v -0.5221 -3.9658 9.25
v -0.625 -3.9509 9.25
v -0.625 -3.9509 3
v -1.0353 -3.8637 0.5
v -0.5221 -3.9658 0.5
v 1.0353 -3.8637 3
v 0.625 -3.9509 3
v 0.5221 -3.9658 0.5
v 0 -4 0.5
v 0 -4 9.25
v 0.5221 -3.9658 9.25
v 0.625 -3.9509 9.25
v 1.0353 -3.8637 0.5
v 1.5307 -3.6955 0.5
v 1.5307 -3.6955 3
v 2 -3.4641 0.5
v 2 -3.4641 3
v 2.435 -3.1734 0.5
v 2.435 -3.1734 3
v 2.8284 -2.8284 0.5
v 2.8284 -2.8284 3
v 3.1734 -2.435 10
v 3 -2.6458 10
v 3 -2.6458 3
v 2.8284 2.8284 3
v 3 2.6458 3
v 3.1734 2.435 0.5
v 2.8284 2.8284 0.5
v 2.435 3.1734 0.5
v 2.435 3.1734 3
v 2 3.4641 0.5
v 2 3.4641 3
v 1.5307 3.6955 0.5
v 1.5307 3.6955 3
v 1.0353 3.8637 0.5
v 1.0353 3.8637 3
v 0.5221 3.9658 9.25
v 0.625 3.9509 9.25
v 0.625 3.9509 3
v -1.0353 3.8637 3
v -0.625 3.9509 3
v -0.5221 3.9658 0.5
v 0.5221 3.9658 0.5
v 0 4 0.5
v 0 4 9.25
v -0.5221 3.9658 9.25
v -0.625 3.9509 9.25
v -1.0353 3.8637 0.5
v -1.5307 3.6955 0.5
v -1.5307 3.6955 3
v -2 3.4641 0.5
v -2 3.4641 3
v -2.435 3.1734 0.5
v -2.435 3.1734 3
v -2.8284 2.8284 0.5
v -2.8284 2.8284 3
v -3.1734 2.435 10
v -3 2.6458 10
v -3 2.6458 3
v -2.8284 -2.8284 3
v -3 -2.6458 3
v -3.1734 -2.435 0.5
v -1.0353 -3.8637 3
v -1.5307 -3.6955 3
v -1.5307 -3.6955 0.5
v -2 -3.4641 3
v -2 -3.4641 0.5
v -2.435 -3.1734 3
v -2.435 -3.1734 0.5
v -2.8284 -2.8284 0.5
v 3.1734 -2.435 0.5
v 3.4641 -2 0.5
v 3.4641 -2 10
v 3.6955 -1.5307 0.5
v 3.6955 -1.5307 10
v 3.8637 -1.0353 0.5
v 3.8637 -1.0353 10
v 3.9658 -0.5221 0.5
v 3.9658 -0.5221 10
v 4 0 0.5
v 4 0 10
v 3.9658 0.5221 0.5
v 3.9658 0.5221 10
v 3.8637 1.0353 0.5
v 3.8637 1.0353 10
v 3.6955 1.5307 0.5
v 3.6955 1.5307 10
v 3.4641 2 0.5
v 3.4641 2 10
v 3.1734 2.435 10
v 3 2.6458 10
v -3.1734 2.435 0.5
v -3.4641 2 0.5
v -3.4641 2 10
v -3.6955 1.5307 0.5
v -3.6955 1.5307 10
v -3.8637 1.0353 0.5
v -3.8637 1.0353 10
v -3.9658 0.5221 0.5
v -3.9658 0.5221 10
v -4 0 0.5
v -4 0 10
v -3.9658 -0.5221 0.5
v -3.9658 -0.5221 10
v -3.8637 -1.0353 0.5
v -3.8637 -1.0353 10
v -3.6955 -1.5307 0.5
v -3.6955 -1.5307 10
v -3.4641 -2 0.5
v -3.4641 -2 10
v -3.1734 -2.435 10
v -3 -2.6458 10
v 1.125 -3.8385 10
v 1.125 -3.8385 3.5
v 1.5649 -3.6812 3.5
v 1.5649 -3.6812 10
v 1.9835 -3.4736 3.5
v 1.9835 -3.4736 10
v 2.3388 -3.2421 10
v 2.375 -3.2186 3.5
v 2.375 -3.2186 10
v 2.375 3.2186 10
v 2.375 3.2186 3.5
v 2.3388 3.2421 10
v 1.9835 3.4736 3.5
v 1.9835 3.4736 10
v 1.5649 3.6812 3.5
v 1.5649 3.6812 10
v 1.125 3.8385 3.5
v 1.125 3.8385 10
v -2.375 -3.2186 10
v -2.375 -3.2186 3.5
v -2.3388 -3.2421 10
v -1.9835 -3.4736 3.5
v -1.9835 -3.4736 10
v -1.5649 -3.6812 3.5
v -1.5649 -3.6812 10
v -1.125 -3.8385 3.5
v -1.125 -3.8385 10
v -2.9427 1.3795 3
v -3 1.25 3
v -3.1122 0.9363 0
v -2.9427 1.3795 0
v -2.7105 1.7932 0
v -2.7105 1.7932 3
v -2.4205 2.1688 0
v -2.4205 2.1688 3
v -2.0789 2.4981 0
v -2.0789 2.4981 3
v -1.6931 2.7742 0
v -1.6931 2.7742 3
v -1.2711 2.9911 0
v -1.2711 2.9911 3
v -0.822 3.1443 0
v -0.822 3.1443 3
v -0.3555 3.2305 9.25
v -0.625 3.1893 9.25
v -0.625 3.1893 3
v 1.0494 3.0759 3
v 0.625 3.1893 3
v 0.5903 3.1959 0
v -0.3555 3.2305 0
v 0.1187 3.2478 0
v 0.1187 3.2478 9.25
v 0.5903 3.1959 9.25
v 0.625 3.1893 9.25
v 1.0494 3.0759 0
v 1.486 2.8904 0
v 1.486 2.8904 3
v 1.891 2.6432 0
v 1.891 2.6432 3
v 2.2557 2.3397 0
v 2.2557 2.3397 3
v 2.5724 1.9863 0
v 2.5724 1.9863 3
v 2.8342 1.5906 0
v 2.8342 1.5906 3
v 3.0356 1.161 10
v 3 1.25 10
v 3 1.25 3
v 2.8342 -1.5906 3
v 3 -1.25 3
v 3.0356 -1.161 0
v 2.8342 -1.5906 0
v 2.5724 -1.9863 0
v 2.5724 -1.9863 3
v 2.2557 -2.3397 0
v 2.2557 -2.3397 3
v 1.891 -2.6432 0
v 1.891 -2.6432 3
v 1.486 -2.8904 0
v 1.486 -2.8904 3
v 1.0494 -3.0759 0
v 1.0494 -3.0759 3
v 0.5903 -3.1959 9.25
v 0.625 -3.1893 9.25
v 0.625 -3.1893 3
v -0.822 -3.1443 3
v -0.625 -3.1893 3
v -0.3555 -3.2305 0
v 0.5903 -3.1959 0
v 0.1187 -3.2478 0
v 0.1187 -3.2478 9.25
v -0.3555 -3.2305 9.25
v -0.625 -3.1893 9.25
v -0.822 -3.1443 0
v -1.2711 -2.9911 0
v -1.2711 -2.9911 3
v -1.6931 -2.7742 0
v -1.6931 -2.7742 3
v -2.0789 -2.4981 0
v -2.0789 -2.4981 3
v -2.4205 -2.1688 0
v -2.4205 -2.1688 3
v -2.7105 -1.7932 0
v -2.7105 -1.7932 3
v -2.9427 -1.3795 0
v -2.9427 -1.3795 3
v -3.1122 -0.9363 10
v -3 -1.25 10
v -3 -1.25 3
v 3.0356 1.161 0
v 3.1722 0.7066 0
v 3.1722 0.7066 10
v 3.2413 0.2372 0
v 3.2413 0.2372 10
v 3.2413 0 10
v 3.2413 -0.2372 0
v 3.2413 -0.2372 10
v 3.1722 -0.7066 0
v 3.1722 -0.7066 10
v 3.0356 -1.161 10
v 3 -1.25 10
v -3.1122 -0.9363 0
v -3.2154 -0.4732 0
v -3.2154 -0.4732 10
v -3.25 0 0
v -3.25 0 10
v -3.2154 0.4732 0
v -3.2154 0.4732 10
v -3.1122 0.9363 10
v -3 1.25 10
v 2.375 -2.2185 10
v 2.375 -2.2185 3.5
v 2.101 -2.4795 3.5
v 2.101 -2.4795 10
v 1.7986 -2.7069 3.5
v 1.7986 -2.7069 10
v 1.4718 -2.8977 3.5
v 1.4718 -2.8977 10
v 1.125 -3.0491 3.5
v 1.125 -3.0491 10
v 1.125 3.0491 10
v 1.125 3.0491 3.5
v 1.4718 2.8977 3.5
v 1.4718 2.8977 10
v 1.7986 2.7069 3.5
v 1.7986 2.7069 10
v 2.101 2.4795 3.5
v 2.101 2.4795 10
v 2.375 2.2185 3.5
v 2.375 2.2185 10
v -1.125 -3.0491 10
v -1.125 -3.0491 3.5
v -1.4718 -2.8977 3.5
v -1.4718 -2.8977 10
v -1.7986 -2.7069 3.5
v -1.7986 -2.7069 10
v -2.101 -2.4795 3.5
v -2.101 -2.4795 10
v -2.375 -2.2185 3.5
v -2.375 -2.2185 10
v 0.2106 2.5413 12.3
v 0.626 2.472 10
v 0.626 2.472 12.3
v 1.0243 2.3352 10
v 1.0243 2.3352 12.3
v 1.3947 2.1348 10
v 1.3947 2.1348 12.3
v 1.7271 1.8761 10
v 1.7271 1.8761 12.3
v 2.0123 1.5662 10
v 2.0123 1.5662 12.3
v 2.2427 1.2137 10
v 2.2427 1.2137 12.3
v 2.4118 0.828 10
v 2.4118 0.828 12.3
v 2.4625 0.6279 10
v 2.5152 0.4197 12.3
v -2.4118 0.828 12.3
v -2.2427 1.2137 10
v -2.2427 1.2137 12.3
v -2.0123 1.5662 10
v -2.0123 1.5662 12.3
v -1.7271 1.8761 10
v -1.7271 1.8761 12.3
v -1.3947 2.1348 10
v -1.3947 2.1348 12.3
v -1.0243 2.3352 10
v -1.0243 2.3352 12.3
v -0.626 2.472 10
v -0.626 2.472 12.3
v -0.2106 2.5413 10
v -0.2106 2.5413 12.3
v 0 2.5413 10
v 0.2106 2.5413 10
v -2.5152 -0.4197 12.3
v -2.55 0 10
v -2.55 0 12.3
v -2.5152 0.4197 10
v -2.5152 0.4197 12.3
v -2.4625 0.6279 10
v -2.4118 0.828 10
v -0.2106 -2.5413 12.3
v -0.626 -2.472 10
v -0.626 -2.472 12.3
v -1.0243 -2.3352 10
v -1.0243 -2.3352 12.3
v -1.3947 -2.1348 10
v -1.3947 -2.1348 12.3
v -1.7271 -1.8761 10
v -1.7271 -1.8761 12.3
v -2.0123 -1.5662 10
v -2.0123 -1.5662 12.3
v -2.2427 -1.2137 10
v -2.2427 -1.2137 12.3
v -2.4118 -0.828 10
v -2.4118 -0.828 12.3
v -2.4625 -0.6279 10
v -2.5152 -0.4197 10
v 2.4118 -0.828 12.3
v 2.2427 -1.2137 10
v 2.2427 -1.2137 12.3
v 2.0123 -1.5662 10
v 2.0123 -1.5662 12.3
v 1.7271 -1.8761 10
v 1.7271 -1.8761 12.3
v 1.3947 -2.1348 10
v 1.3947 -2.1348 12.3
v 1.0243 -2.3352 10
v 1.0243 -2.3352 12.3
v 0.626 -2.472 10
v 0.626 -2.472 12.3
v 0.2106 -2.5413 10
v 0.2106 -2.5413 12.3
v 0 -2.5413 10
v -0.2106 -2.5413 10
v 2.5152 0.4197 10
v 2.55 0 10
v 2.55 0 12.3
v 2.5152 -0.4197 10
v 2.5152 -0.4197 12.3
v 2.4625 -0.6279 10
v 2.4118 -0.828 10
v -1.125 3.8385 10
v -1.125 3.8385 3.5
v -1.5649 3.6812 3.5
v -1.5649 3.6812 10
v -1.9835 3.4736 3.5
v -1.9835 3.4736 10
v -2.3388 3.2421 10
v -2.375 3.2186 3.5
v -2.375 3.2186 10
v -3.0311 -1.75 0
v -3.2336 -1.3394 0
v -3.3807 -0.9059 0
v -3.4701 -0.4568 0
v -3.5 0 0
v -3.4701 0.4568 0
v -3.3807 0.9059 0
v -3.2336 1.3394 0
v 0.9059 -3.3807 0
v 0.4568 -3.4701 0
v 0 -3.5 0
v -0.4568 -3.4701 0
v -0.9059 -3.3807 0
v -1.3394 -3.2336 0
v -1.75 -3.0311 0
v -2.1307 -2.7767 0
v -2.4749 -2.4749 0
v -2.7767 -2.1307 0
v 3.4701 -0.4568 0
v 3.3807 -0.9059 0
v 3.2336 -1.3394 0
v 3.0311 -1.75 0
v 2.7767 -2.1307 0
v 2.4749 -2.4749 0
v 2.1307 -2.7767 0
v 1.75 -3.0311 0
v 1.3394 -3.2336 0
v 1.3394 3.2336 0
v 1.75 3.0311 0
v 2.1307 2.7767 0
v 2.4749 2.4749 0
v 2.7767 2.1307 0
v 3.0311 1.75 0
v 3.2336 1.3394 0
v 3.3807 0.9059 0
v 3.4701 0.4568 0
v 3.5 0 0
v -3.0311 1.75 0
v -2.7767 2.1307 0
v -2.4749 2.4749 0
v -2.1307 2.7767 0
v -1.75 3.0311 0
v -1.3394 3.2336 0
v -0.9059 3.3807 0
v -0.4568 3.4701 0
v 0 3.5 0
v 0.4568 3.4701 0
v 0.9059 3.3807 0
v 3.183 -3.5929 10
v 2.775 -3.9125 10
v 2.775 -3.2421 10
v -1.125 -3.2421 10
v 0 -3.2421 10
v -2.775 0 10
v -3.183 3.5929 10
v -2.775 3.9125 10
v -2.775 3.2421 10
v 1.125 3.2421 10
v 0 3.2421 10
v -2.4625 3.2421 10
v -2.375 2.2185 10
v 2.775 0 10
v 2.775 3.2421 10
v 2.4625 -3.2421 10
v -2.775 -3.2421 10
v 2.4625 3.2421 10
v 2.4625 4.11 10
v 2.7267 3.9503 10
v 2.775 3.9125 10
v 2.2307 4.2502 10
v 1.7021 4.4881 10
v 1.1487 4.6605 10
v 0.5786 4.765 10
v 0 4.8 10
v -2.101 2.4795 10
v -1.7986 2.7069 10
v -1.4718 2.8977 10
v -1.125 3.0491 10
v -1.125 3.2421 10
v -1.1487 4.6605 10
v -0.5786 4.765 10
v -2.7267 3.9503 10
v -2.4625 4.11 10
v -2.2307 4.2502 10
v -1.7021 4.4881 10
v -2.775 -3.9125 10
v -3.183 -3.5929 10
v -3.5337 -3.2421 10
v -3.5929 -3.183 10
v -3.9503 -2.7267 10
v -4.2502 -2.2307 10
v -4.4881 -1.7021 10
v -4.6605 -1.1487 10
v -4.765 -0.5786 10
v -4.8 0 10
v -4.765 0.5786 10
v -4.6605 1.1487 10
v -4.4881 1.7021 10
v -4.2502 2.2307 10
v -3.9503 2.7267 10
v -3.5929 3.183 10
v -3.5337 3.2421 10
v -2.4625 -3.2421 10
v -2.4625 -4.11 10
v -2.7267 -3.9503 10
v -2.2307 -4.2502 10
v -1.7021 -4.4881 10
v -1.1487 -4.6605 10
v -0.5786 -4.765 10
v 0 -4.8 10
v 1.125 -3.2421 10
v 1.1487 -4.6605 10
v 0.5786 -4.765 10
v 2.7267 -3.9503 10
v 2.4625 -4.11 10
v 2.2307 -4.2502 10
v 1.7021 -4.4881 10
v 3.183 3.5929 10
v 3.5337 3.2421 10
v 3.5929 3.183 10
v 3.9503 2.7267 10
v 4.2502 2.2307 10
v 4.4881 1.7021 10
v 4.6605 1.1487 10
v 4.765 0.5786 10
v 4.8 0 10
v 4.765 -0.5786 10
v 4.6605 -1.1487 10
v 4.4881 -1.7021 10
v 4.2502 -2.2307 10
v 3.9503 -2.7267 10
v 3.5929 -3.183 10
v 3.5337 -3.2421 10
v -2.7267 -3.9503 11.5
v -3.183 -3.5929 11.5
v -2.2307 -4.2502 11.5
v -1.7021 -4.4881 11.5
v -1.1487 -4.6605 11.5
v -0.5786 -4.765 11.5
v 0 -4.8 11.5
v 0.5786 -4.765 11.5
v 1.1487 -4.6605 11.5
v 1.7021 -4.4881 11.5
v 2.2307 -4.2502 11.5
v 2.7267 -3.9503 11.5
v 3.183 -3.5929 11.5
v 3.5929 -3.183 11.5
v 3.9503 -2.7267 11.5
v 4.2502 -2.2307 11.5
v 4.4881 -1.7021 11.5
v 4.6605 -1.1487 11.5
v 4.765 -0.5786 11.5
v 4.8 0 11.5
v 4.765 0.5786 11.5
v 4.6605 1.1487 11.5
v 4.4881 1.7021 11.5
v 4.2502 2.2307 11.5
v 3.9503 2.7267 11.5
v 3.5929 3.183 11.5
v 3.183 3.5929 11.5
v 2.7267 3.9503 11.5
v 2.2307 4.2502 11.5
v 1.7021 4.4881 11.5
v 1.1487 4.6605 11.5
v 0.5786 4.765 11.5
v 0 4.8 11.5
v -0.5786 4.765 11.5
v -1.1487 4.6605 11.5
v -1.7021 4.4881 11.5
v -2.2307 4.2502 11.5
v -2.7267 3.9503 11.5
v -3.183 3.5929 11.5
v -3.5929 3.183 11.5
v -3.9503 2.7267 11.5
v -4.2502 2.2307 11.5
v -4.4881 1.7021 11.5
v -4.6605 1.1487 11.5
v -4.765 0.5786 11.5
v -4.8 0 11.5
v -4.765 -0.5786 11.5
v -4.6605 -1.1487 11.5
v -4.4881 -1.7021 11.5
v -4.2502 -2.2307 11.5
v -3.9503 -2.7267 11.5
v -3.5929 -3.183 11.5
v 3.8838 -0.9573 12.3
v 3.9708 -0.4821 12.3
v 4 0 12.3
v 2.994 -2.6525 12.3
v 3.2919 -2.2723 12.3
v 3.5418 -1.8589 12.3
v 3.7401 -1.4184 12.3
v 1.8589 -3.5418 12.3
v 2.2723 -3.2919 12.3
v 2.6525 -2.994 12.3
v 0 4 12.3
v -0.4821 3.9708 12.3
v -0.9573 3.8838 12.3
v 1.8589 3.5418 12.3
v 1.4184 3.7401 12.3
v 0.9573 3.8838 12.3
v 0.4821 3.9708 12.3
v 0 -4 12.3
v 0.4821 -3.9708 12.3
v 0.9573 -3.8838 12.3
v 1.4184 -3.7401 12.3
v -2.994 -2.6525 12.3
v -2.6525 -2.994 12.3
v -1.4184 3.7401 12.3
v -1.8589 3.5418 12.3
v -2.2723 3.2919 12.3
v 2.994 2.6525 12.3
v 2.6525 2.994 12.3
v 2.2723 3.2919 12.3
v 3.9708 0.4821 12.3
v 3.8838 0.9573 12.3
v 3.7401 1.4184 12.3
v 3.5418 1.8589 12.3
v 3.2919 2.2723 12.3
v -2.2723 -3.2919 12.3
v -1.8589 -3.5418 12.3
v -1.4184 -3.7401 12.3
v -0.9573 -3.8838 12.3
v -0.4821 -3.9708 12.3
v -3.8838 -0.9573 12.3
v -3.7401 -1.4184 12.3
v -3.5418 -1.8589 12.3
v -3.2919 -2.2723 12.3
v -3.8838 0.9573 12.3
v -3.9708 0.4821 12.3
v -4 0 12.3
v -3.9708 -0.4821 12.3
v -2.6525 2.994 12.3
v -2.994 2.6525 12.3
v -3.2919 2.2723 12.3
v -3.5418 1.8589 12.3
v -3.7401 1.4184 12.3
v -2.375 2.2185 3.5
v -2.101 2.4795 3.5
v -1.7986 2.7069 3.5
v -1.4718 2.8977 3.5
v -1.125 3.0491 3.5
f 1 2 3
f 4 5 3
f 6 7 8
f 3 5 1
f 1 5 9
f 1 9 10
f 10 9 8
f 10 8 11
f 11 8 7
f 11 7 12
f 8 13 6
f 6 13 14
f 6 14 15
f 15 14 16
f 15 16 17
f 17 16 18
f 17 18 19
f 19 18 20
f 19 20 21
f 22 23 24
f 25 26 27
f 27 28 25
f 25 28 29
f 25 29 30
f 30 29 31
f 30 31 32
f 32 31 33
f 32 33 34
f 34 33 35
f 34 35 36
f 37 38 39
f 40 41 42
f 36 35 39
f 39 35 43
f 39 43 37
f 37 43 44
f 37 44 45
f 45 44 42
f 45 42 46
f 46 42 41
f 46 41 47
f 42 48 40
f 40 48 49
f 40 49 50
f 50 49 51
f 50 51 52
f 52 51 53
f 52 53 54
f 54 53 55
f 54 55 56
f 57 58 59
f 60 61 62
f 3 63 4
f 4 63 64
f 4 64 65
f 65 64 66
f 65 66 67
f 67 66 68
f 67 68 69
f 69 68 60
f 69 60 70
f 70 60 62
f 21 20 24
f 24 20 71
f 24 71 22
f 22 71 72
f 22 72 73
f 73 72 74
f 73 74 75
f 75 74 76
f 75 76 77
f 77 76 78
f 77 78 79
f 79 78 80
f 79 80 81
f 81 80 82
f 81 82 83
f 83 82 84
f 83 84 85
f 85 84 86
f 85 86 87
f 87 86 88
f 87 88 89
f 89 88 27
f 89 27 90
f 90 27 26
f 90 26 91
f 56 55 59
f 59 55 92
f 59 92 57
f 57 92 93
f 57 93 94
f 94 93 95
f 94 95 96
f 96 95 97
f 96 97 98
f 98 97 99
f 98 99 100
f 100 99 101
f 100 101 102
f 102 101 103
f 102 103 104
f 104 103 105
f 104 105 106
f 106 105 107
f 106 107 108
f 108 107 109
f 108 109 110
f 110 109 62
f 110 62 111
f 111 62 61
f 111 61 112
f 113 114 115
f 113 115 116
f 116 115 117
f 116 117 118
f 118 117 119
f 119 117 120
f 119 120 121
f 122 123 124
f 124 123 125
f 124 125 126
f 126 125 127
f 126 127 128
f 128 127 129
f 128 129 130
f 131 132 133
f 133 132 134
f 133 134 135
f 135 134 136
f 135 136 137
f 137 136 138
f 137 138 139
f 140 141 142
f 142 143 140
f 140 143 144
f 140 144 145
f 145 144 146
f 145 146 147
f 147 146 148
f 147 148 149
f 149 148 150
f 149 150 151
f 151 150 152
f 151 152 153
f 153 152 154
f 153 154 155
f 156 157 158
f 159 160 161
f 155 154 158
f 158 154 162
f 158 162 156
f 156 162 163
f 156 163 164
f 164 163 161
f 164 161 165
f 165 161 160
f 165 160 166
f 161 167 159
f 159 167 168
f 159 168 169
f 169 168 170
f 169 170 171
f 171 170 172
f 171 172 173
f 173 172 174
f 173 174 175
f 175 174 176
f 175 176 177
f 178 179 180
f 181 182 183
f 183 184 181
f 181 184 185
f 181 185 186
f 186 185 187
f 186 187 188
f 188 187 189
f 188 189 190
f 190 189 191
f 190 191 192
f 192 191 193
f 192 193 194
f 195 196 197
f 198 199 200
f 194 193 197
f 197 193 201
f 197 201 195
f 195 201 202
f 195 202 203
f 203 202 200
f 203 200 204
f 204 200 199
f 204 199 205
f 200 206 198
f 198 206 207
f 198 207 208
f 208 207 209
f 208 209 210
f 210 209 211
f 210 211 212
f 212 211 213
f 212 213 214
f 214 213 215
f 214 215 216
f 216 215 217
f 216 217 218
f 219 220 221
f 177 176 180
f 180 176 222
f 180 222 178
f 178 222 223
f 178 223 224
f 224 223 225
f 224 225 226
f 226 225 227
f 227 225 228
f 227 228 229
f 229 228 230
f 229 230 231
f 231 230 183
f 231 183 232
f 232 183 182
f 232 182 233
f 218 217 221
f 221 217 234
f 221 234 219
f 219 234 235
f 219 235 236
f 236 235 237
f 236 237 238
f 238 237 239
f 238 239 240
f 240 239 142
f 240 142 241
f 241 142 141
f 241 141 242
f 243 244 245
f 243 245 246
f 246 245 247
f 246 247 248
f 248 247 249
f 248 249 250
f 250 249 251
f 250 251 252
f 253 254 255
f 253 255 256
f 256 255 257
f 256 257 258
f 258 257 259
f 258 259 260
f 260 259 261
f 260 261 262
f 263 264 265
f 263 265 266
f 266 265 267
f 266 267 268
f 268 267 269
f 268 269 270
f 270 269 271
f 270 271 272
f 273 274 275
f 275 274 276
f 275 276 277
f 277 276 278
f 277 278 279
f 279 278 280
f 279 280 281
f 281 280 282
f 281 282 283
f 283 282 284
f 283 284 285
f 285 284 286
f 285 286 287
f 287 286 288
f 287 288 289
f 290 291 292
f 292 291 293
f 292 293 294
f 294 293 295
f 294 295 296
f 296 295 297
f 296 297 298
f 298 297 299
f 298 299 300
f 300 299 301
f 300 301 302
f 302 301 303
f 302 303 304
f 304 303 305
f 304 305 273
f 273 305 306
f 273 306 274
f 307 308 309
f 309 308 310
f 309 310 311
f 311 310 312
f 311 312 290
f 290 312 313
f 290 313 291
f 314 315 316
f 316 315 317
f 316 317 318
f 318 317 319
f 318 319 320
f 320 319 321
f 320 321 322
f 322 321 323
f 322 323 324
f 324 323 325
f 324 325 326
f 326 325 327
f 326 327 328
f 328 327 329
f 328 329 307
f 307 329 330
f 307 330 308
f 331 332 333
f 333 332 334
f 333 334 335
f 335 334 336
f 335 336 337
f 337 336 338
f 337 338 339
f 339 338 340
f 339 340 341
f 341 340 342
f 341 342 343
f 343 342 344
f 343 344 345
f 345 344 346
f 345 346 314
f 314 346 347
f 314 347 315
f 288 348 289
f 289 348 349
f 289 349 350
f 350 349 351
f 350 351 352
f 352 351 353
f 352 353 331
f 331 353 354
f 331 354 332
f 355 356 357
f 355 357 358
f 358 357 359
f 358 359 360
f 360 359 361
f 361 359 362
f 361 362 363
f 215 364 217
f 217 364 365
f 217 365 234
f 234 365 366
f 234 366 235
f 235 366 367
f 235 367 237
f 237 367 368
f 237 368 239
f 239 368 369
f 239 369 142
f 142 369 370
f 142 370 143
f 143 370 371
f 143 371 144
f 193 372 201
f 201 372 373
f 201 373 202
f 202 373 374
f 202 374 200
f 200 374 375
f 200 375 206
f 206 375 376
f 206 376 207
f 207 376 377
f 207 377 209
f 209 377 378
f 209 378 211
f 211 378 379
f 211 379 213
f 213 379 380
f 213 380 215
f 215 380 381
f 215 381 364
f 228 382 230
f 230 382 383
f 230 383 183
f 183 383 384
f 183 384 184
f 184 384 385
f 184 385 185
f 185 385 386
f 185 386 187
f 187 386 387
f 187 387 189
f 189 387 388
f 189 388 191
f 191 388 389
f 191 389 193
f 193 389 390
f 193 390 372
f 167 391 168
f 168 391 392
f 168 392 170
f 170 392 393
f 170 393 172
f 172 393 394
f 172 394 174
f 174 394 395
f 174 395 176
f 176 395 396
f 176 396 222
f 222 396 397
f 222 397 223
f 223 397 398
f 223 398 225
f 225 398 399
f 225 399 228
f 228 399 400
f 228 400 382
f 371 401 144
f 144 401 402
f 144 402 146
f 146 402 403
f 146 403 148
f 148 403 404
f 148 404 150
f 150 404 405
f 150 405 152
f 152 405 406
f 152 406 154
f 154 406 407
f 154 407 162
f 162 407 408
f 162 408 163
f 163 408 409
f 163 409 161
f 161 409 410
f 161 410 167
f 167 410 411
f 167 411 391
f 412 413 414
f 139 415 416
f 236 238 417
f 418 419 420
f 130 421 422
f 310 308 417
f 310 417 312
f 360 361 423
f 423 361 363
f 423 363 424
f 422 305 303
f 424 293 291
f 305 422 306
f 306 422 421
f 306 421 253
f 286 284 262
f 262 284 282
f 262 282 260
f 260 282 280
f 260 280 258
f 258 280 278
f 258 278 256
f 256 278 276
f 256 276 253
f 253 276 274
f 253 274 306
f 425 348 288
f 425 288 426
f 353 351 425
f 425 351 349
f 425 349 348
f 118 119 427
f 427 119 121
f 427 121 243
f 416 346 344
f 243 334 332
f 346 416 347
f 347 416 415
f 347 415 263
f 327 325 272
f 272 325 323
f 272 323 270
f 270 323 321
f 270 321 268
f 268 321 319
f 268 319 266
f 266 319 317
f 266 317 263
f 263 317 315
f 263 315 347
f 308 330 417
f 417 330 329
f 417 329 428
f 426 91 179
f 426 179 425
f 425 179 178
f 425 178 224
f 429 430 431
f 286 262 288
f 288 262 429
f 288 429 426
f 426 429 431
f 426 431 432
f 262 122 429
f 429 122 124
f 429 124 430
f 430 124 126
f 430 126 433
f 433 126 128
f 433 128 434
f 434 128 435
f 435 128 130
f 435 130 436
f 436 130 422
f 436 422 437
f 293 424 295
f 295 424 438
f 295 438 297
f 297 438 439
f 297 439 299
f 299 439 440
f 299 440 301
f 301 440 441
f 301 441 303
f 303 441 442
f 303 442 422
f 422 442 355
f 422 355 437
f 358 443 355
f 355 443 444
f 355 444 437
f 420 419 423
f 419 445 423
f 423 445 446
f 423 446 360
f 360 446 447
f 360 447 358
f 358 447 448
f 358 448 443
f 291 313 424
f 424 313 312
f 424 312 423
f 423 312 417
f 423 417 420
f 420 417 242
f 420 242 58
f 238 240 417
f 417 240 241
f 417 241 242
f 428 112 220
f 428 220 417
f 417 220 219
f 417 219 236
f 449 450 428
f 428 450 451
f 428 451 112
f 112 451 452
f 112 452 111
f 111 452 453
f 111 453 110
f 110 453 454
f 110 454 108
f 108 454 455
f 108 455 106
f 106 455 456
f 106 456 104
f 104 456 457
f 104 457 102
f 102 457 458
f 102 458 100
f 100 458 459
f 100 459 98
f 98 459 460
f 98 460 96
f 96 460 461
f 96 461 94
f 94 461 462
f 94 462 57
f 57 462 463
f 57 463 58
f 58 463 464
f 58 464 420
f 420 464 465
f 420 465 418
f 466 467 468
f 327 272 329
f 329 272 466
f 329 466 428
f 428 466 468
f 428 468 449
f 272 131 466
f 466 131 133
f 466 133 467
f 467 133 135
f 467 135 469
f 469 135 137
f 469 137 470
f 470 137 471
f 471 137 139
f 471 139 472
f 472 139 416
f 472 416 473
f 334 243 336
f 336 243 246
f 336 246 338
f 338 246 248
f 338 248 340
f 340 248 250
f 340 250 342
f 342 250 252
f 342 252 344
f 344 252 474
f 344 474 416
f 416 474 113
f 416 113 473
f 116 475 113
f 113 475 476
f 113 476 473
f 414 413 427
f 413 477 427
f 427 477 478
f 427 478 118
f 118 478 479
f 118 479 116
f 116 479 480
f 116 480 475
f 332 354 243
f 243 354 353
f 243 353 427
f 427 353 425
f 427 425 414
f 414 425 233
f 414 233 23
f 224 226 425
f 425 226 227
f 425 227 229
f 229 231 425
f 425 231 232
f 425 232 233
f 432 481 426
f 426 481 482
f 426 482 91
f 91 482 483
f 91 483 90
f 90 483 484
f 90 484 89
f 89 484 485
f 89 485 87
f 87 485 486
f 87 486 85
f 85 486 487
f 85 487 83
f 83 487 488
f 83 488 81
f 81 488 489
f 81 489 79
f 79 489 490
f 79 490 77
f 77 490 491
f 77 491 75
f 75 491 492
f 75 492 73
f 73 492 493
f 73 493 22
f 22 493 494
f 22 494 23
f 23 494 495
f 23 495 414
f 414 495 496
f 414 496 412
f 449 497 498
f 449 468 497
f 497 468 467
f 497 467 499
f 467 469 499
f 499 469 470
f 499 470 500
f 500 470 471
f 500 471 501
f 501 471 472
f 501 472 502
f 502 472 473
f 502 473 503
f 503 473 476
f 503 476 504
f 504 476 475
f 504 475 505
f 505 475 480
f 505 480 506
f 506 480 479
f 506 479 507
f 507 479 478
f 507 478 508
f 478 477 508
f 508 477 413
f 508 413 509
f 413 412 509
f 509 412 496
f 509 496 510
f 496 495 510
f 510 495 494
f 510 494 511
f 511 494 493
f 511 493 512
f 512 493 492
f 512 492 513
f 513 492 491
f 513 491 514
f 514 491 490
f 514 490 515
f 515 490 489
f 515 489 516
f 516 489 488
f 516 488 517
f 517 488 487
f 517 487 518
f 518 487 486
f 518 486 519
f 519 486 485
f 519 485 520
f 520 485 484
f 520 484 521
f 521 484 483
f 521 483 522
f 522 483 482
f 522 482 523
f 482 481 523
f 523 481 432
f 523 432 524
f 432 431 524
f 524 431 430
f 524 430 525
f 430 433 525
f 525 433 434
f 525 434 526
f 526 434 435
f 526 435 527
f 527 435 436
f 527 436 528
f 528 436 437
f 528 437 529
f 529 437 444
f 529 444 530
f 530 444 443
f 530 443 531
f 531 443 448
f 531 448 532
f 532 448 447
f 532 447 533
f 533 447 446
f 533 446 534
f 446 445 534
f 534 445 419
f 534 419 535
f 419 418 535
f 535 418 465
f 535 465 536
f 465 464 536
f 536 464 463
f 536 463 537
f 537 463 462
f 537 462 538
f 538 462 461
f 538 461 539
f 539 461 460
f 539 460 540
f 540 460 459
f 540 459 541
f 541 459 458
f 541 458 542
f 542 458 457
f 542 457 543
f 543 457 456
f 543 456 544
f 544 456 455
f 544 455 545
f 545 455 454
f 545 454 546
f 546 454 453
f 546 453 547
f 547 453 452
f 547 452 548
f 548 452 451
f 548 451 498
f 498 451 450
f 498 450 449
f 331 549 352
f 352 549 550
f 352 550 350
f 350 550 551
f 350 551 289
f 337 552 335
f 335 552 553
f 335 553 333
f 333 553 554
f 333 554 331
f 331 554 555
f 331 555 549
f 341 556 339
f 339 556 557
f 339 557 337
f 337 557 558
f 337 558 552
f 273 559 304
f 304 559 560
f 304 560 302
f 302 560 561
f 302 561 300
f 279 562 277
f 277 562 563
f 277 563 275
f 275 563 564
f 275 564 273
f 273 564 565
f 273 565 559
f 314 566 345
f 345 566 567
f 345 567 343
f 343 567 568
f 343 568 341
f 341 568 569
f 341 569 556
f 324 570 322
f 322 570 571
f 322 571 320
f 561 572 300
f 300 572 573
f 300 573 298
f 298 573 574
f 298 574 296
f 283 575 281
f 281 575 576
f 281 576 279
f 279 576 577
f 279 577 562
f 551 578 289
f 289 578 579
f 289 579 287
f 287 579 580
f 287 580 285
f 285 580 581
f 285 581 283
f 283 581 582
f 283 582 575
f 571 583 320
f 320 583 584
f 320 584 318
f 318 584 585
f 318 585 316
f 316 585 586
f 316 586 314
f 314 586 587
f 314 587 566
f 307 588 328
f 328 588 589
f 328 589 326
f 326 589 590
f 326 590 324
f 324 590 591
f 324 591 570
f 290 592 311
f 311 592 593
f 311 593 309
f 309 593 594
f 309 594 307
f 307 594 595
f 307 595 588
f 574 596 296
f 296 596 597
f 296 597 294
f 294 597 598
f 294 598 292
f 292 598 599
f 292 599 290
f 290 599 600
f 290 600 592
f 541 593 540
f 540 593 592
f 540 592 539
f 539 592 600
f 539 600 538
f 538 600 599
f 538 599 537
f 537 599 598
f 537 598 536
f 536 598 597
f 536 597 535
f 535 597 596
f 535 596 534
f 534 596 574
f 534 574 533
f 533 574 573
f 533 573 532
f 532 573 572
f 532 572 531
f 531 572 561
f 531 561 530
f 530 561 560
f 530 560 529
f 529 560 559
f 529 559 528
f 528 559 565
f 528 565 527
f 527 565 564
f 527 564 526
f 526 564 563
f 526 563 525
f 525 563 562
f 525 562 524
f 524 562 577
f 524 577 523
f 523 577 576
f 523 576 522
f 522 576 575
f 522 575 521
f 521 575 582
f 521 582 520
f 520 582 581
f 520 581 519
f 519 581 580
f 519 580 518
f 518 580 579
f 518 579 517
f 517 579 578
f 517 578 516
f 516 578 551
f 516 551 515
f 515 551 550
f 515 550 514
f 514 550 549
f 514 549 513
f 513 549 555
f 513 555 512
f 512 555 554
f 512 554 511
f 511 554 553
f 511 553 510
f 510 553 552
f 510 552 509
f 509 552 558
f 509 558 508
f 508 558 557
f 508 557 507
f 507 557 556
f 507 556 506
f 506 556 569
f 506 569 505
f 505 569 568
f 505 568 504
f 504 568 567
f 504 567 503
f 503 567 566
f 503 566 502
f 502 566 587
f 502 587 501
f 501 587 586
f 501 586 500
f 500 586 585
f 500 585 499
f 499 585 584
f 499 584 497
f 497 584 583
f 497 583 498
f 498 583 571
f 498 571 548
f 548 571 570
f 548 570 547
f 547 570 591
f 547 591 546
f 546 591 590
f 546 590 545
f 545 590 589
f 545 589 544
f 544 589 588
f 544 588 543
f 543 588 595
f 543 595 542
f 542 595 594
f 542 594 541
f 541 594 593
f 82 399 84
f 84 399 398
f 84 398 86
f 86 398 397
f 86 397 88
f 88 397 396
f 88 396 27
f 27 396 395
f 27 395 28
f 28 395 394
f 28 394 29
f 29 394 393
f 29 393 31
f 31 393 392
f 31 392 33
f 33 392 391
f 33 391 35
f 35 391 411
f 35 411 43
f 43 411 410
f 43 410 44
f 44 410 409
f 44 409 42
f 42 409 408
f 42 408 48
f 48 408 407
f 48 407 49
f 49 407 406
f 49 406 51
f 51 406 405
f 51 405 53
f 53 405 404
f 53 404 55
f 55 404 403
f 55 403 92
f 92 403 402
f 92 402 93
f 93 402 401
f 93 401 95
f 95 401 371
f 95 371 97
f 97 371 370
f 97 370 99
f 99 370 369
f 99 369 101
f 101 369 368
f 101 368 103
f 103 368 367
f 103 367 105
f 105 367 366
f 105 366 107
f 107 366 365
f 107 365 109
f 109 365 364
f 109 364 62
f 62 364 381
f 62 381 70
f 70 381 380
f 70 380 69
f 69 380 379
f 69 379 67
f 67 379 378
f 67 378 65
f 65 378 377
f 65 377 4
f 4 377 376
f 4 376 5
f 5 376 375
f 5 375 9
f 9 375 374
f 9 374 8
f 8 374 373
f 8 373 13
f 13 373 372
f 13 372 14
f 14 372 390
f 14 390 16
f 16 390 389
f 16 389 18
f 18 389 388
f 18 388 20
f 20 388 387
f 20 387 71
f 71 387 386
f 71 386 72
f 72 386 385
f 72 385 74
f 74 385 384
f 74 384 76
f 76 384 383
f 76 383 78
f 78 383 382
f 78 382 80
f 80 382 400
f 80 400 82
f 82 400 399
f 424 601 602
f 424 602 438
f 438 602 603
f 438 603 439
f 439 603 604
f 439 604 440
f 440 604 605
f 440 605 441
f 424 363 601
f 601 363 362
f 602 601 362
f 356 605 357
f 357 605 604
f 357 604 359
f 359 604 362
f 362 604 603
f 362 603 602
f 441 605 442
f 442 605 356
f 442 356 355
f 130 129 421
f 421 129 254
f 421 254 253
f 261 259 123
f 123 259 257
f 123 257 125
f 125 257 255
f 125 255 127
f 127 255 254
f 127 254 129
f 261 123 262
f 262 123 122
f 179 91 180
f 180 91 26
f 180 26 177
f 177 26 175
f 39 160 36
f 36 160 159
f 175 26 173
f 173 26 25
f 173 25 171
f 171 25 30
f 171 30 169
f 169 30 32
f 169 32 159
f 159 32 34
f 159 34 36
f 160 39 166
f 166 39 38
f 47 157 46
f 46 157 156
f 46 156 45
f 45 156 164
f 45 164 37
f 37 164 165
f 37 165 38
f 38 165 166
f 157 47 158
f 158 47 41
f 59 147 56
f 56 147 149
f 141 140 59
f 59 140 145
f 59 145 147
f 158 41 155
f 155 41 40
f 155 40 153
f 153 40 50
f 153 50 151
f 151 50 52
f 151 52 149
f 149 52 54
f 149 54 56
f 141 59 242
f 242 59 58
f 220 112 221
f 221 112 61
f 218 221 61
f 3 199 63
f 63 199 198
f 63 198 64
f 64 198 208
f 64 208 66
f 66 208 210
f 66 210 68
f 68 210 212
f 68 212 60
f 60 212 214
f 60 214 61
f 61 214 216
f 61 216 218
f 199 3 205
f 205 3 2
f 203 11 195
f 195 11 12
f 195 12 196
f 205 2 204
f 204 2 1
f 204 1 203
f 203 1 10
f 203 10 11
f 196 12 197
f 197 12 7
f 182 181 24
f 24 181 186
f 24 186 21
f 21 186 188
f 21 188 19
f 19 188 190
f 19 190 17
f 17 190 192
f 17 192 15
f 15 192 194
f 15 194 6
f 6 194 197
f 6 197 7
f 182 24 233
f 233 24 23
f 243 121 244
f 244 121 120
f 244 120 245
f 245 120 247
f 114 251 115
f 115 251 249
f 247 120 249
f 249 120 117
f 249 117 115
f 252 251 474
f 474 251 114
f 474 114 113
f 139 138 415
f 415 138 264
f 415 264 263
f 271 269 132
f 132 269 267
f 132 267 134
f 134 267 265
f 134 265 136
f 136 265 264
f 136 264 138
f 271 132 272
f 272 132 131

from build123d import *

# Parameters (mm, degrees)
SKETCH1_R           = 4
BOSS_EXTRUDE1_DEPTH = 10
SKETCH2_R           = 4.8
BOSS_EXTRUDE2_DEPTH = 2.3
CHAMFER1_SIZE       = 0.8
CHAMFER2_SIZE       = 0.5
SKETCH3_R           = 2.55
CUT_EXTRUDE1_DEPTH  = 3
SKETCH4_R           = 3.25
CUT_EXTRUDE2_DEPTH  = 10
CUT_EXTRUDE3_DEPTH  = 5


with BuildPart() as part:
    # Sketch1 → Boss-Extrude1 (new body)
    with BuildSketch(Plane.XY):
        Circle(SKETCH1_R)
    extrude(amount=BOSS_EXTRUDE1_DEPTH)

    # Sketch2 → Boss-Extrude2 (add)
    with BuildSketch(Plane.XY.offset(10)):
        Circle(SKETCH2_R)
    extrude(amount=BOSS_EXTRUDE2_DEPTH)

    # Chamfer1
    chamfer1_edges = [part.edges().sort_by_distance(p)[0] for p in [
        (-4.8, 0, 12.3),
    ]]
    chamfer(chamfer1_edges, length=CHAMFER1_SIZE)

    # Chamfer2
    chamfer2_edges = [part.edges().sort_by_distance(p)[0] for p in [
        (-4, 0, 0),
    ]]
    chamfer(chamfer2_edges, length=CHAMFER2_SIZE)

    # Sketch3 → Cut-Extrude1 (cut)
    with BuildSketch(Plane.XY.offset(12.3)):
        Circle(SKETCH3_R)
    extrude(amount=-CUT_EXTRUDE1_DEPTH, mode=Mode.SUBTRACT)

    # Sketch4 → Cut-Extrude2 (cut)
    with BuildSketch(Plane(origin=(0, 0, 0), x_dir=(-1, 0, 0), z_dir=(0, 0, -1))):
        Circle(SKETCH4_R)
    extrude(amount=-CUT_EXTRUDE2_DEPTH, mode=Mode.SUBTRACT)

    # Sketch5 → Cut-Extrude3 (cut, symmetric)
    with BuildSketch(Plane(origin=(0, 0, 0), x_dir=(1, 0, 0), z_dir=(0, 1, 0))):
        Polygon((-3, -10), (-2.375, -10), (-2.375, -3.5), (-1.125, -3.5), (-1.125, -10), (1.125, -10), (1.125, -3.5), (2.375, -3.5), (2.375, -10), (3, -10), (3, -3), (0.625, -3), (0.625, -9.25), (-0.625, -9.25), (-0.625, -3), (-3, -3), align=None)
    extrude(amount=CUT_EXTRUDE3_DEPTH, both=True, mode=Mode.SUBTRACT)


solid = part.part
